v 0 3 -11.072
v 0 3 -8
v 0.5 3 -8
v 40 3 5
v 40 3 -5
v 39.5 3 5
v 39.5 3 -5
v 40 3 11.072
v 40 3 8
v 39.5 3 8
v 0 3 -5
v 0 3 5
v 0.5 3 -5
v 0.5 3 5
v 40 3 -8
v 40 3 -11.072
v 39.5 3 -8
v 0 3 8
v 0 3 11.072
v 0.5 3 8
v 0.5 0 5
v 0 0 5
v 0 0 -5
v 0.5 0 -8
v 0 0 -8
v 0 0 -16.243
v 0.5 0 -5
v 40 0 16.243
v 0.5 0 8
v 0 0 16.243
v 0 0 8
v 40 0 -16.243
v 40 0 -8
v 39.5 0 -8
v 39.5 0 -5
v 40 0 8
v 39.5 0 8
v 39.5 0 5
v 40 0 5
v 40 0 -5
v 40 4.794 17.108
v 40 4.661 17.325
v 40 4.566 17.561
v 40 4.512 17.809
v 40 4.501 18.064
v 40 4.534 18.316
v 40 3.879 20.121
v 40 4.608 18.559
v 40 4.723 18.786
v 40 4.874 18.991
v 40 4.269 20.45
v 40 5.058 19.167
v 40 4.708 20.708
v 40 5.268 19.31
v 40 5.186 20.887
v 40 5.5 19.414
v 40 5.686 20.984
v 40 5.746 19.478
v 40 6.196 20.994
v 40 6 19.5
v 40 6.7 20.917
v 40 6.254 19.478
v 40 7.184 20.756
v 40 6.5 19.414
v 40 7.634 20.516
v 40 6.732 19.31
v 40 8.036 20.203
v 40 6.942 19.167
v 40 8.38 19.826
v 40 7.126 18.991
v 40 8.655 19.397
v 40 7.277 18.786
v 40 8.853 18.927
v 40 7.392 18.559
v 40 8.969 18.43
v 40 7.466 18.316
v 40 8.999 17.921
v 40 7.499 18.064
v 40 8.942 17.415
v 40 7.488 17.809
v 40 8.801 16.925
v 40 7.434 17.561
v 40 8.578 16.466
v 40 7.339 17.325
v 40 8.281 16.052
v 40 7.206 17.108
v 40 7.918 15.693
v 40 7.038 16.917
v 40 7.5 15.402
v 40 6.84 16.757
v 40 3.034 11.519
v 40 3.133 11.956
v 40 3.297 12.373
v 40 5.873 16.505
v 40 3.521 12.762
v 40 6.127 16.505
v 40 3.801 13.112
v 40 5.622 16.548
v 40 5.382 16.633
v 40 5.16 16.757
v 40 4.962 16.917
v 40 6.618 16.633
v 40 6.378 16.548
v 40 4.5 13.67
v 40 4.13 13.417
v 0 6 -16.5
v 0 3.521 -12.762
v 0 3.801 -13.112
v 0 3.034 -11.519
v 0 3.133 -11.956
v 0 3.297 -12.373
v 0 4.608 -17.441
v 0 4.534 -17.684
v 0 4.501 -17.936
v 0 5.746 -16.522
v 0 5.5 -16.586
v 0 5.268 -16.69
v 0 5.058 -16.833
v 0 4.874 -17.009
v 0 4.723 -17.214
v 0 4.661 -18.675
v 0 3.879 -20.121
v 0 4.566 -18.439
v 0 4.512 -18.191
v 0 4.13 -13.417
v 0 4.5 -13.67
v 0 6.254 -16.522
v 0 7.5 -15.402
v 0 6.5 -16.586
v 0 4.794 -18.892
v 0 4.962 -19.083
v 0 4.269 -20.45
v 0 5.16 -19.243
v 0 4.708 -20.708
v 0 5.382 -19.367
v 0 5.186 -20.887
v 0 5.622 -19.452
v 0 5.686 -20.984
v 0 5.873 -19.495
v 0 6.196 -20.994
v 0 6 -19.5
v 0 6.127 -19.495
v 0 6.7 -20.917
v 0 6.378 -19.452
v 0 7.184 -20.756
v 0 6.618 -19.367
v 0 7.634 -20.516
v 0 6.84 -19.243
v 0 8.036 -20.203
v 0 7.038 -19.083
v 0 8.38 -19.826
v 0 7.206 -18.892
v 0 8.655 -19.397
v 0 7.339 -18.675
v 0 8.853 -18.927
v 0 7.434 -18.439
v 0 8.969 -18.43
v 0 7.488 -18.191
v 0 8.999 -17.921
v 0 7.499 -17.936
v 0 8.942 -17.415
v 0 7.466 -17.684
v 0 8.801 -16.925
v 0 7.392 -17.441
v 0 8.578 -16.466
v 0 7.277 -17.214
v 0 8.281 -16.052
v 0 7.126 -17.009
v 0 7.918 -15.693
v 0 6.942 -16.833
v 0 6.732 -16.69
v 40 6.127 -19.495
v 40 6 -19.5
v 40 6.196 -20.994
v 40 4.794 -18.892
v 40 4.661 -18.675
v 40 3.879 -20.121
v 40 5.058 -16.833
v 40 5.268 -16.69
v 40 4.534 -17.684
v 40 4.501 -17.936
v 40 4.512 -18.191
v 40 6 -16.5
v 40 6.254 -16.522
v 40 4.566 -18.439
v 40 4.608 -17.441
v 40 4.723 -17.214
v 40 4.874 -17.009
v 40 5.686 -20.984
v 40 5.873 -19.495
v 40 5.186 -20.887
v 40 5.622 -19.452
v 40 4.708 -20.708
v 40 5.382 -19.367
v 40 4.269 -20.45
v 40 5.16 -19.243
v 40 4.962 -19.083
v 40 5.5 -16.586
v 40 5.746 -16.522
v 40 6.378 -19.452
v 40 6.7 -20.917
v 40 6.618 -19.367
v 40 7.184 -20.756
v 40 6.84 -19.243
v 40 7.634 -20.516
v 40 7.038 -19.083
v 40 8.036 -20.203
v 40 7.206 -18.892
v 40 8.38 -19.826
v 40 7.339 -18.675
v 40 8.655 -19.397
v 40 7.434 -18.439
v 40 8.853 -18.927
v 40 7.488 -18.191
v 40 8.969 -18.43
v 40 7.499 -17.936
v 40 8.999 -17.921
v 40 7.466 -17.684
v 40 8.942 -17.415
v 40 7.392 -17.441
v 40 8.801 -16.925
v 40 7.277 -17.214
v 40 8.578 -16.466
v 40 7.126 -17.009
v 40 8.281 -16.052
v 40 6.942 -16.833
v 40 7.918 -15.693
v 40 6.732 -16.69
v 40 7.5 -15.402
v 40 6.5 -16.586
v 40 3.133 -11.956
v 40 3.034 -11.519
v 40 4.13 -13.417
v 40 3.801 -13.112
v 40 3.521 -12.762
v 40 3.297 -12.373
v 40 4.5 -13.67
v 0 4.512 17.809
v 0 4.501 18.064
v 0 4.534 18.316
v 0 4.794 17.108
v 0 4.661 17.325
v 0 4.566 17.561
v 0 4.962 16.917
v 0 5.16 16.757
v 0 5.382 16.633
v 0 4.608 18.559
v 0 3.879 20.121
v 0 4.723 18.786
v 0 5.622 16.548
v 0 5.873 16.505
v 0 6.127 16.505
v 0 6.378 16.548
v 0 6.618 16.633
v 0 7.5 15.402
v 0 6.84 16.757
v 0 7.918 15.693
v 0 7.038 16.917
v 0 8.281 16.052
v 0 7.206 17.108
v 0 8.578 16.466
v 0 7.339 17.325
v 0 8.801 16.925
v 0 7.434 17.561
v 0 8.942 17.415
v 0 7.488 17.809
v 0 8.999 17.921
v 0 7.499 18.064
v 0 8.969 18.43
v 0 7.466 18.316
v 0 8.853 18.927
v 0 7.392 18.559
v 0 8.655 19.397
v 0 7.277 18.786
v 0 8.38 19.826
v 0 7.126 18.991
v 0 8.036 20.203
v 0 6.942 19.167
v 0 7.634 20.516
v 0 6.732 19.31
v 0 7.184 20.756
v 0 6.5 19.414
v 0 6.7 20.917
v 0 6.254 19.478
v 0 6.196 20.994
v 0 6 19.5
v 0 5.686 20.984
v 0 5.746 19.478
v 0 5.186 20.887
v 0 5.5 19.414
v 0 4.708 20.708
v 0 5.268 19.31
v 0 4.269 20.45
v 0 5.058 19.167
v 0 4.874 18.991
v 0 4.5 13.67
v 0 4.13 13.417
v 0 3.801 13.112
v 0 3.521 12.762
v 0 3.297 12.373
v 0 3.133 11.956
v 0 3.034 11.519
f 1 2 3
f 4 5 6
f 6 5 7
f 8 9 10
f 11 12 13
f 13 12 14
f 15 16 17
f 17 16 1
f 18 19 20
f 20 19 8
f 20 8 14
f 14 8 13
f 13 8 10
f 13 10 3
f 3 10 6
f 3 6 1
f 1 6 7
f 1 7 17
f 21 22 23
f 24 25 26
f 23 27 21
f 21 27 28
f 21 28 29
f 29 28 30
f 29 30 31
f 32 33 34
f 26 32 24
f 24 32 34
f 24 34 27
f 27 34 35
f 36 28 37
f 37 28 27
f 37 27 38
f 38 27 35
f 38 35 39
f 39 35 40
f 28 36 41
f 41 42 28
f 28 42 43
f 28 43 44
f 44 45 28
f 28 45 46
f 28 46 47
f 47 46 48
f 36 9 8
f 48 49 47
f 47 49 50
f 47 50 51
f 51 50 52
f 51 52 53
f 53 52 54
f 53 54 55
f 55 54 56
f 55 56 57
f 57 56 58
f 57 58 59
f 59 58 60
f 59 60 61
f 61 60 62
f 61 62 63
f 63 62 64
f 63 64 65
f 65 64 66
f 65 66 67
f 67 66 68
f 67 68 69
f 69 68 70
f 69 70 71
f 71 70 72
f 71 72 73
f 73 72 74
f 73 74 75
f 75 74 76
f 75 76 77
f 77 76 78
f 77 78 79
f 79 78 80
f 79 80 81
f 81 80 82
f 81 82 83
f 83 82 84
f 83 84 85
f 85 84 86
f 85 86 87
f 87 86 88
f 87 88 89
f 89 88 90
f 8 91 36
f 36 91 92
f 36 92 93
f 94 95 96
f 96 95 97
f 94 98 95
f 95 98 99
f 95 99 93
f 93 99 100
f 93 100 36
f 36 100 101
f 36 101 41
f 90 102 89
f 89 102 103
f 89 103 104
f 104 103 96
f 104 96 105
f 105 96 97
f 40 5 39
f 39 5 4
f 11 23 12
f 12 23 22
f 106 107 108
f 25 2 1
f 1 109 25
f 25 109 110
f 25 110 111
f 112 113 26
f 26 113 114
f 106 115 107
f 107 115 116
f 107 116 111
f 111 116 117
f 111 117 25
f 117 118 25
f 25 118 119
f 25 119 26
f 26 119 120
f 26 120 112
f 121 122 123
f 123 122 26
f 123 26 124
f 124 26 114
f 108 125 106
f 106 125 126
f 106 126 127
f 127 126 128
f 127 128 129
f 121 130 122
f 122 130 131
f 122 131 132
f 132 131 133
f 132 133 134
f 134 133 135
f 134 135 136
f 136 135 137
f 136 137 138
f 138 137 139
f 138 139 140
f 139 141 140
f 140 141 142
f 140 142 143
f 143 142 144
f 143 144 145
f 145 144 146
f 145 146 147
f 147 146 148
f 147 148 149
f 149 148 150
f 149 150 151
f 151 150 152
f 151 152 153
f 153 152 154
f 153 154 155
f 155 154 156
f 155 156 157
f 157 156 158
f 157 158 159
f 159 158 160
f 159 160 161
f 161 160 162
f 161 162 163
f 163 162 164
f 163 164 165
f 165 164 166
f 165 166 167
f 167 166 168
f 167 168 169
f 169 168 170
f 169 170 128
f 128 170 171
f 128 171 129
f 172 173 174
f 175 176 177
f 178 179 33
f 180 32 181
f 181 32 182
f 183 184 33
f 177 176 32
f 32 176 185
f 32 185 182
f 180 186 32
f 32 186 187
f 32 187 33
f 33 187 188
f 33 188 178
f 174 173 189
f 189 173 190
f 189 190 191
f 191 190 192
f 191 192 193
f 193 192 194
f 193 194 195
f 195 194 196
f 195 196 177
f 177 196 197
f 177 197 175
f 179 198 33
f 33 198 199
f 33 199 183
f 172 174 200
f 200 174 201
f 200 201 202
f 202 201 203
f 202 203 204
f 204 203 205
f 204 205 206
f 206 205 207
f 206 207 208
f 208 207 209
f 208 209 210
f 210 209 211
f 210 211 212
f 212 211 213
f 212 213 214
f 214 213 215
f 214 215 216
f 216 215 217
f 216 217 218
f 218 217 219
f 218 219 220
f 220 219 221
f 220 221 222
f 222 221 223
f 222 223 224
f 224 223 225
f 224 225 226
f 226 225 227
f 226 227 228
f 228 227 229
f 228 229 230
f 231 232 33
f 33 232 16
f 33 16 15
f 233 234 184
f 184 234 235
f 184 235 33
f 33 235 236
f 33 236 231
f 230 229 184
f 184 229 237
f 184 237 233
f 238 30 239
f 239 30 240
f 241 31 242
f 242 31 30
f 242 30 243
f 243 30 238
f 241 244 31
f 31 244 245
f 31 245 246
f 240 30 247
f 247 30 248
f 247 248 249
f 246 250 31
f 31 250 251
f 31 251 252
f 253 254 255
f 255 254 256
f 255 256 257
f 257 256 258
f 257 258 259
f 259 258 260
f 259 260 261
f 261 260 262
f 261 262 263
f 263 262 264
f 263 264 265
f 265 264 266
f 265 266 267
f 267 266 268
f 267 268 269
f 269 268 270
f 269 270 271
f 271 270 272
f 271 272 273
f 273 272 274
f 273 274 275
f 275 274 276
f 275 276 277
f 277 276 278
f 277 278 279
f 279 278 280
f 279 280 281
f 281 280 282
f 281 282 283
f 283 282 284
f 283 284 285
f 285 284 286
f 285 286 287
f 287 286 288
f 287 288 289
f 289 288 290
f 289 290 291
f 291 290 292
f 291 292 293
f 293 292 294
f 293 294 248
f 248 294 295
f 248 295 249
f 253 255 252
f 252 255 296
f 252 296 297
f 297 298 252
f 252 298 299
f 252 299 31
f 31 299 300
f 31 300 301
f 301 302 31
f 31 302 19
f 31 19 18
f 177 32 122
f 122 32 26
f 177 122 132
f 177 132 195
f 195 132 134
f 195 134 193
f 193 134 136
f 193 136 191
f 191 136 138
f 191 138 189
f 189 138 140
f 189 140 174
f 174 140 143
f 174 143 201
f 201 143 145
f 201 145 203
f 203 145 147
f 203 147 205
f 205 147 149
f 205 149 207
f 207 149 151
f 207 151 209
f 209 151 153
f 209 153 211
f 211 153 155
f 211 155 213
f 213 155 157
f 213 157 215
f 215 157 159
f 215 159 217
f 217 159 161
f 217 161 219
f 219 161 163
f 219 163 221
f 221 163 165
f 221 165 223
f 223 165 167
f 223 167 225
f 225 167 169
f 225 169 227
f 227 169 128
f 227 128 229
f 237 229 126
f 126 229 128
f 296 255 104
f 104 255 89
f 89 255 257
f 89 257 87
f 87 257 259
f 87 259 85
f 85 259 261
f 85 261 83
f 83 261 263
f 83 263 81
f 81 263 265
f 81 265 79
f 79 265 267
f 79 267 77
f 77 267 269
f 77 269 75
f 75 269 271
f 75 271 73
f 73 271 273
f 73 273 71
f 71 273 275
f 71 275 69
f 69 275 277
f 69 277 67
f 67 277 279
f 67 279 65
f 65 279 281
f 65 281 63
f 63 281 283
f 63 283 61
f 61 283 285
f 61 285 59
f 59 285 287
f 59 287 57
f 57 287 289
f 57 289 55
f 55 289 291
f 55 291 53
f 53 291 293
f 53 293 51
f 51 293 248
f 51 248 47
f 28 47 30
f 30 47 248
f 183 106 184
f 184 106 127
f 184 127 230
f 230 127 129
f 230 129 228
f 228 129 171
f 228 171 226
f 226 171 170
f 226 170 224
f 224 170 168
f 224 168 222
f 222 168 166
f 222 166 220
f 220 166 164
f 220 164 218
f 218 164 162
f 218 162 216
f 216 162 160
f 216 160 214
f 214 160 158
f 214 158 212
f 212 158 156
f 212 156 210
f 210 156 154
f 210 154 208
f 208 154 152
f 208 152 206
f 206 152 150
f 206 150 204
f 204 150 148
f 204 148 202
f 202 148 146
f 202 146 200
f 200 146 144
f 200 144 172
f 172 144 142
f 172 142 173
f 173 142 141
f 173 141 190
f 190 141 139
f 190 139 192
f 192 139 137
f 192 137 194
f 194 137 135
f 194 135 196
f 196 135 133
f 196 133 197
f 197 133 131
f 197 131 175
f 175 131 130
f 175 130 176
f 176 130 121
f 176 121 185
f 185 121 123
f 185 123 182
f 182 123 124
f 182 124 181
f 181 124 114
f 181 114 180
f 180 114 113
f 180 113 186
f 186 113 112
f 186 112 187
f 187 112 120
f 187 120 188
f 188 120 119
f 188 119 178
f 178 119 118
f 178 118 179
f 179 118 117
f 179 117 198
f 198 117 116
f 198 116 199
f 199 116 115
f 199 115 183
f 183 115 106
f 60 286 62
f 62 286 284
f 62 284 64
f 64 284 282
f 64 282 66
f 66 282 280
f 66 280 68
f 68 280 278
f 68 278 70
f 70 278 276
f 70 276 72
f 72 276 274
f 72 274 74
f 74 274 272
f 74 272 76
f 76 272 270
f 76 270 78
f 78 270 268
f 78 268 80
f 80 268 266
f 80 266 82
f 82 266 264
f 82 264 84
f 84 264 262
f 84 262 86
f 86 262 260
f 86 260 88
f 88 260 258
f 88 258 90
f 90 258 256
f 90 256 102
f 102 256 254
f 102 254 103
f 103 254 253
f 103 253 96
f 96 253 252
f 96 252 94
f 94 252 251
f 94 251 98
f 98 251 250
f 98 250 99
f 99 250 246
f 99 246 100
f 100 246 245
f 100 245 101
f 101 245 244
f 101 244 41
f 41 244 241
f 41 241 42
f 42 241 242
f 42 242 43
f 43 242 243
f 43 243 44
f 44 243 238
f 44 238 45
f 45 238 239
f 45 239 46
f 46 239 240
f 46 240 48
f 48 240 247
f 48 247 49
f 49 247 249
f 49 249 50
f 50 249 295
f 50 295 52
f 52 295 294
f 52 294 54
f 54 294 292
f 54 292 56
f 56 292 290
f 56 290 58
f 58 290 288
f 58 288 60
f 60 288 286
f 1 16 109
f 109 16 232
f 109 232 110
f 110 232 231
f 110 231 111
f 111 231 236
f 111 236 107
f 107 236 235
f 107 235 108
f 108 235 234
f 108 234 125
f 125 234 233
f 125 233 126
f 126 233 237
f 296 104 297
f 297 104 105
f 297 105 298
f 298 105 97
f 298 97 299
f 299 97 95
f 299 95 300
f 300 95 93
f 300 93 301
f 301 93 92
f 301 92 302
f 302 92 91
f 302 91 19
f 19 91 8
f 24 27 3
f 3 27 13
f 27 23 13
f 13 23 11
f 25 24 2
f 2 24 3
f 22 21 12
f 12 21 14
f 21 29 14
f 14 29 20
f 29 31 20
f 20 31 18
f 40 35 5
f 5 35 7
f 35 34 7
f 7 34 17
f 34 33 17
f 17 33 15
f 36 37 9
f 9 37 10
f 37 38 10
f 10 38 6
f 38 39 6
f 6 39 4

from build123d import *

# Parameters (mm, degrees)
SKETCH_1_R          = 1.5
EXTRUDE_1_DEPTH     = 40
FILLET_1_R          = 3
SKETCH_2_W          = 0.5
SKETCH_2_H          = 3
CUT_EXTRUDE_1_DEPTH = 46.57411546


with BuildPart() as part:
    # 스케치1 → 보스-돌출1 (new body)
    with BuildSketch(Plane(origin=(0, 0, 0), x_dir=(0, 0, -1), z_dir=(1, 0, 0))):
        with BuildLine():
            Line((-15.401923789, 7.5), (-12.803847577, 3))
            Line((-12.803847577, 3), (12.803847577, 3))
            Line((12.803847577, 3), (15.401923789, 7.5))
            ThreePointArc((15.401923789, 7.5), (19.826284287, 8.380060021), (20.121320344, 3.878679656))
            Line((20.121320344, 3.878679656), (16.242640687, 0))
            Line((16.242640687, 0), (0, 0))
            Line((0, 0), (-16.242640687, 0))
            Line((-16.242640687, 0), (-20.121320344, 3.878679656))
            ThreePointArc((-20.121320344, 3.878679656), (-19.826284287, 8.380060021), (-15.401923789, 7.5))
        make_face()
        with Locations((18, 6)):
            Circle(SKETCH_1_R, mode=Mode.SUBTRACT)
        with Locations(Location((-18, 6, 0), (0, 0, 180))):
            Circle(SKETCH_1_R, mode=Mode.SUBTRACT)
    extrude(amount=EXTRUDE_1_DEPTH)

    # 필렛1
    fillet_1_edges = [part.edges().sort_by_distance(p)[0] for p in [
        (20, 3, 12.803847577),
        (20, 3, -12.803847577),
    ]]
    fillet(fillet_1_edges, radius=FILLET_1_R)

    # 스케치2 → 컷-돌출1 (cut, through all)
    with BuildSketch(Plane(origin=(0, 3, 0), x_dir=(1, 0, 0), z_dir=(0, 1, 0))):
        with Locations((0.25, 6.5)):
            Rectangle(SKETCH_2_W, SKETCH_2_H)
        with Locations((0.25, -6.5)):
            Rectangle(SKETCH_2_W, SKETCH_2_H)
        with Locations((39.75, 6.5)):
            Rectangle(SKETCH_2_W, SKETCH_2_H)
        with Locations((39.75, -6.5)):
            Rectangle(SKETCH_2_W, SKETCH_2_H)
    extrude(amount=-CUT_EXTRUDE_1_DEPTH, mode=Mode.SUBTRACT)


solid = part.part
